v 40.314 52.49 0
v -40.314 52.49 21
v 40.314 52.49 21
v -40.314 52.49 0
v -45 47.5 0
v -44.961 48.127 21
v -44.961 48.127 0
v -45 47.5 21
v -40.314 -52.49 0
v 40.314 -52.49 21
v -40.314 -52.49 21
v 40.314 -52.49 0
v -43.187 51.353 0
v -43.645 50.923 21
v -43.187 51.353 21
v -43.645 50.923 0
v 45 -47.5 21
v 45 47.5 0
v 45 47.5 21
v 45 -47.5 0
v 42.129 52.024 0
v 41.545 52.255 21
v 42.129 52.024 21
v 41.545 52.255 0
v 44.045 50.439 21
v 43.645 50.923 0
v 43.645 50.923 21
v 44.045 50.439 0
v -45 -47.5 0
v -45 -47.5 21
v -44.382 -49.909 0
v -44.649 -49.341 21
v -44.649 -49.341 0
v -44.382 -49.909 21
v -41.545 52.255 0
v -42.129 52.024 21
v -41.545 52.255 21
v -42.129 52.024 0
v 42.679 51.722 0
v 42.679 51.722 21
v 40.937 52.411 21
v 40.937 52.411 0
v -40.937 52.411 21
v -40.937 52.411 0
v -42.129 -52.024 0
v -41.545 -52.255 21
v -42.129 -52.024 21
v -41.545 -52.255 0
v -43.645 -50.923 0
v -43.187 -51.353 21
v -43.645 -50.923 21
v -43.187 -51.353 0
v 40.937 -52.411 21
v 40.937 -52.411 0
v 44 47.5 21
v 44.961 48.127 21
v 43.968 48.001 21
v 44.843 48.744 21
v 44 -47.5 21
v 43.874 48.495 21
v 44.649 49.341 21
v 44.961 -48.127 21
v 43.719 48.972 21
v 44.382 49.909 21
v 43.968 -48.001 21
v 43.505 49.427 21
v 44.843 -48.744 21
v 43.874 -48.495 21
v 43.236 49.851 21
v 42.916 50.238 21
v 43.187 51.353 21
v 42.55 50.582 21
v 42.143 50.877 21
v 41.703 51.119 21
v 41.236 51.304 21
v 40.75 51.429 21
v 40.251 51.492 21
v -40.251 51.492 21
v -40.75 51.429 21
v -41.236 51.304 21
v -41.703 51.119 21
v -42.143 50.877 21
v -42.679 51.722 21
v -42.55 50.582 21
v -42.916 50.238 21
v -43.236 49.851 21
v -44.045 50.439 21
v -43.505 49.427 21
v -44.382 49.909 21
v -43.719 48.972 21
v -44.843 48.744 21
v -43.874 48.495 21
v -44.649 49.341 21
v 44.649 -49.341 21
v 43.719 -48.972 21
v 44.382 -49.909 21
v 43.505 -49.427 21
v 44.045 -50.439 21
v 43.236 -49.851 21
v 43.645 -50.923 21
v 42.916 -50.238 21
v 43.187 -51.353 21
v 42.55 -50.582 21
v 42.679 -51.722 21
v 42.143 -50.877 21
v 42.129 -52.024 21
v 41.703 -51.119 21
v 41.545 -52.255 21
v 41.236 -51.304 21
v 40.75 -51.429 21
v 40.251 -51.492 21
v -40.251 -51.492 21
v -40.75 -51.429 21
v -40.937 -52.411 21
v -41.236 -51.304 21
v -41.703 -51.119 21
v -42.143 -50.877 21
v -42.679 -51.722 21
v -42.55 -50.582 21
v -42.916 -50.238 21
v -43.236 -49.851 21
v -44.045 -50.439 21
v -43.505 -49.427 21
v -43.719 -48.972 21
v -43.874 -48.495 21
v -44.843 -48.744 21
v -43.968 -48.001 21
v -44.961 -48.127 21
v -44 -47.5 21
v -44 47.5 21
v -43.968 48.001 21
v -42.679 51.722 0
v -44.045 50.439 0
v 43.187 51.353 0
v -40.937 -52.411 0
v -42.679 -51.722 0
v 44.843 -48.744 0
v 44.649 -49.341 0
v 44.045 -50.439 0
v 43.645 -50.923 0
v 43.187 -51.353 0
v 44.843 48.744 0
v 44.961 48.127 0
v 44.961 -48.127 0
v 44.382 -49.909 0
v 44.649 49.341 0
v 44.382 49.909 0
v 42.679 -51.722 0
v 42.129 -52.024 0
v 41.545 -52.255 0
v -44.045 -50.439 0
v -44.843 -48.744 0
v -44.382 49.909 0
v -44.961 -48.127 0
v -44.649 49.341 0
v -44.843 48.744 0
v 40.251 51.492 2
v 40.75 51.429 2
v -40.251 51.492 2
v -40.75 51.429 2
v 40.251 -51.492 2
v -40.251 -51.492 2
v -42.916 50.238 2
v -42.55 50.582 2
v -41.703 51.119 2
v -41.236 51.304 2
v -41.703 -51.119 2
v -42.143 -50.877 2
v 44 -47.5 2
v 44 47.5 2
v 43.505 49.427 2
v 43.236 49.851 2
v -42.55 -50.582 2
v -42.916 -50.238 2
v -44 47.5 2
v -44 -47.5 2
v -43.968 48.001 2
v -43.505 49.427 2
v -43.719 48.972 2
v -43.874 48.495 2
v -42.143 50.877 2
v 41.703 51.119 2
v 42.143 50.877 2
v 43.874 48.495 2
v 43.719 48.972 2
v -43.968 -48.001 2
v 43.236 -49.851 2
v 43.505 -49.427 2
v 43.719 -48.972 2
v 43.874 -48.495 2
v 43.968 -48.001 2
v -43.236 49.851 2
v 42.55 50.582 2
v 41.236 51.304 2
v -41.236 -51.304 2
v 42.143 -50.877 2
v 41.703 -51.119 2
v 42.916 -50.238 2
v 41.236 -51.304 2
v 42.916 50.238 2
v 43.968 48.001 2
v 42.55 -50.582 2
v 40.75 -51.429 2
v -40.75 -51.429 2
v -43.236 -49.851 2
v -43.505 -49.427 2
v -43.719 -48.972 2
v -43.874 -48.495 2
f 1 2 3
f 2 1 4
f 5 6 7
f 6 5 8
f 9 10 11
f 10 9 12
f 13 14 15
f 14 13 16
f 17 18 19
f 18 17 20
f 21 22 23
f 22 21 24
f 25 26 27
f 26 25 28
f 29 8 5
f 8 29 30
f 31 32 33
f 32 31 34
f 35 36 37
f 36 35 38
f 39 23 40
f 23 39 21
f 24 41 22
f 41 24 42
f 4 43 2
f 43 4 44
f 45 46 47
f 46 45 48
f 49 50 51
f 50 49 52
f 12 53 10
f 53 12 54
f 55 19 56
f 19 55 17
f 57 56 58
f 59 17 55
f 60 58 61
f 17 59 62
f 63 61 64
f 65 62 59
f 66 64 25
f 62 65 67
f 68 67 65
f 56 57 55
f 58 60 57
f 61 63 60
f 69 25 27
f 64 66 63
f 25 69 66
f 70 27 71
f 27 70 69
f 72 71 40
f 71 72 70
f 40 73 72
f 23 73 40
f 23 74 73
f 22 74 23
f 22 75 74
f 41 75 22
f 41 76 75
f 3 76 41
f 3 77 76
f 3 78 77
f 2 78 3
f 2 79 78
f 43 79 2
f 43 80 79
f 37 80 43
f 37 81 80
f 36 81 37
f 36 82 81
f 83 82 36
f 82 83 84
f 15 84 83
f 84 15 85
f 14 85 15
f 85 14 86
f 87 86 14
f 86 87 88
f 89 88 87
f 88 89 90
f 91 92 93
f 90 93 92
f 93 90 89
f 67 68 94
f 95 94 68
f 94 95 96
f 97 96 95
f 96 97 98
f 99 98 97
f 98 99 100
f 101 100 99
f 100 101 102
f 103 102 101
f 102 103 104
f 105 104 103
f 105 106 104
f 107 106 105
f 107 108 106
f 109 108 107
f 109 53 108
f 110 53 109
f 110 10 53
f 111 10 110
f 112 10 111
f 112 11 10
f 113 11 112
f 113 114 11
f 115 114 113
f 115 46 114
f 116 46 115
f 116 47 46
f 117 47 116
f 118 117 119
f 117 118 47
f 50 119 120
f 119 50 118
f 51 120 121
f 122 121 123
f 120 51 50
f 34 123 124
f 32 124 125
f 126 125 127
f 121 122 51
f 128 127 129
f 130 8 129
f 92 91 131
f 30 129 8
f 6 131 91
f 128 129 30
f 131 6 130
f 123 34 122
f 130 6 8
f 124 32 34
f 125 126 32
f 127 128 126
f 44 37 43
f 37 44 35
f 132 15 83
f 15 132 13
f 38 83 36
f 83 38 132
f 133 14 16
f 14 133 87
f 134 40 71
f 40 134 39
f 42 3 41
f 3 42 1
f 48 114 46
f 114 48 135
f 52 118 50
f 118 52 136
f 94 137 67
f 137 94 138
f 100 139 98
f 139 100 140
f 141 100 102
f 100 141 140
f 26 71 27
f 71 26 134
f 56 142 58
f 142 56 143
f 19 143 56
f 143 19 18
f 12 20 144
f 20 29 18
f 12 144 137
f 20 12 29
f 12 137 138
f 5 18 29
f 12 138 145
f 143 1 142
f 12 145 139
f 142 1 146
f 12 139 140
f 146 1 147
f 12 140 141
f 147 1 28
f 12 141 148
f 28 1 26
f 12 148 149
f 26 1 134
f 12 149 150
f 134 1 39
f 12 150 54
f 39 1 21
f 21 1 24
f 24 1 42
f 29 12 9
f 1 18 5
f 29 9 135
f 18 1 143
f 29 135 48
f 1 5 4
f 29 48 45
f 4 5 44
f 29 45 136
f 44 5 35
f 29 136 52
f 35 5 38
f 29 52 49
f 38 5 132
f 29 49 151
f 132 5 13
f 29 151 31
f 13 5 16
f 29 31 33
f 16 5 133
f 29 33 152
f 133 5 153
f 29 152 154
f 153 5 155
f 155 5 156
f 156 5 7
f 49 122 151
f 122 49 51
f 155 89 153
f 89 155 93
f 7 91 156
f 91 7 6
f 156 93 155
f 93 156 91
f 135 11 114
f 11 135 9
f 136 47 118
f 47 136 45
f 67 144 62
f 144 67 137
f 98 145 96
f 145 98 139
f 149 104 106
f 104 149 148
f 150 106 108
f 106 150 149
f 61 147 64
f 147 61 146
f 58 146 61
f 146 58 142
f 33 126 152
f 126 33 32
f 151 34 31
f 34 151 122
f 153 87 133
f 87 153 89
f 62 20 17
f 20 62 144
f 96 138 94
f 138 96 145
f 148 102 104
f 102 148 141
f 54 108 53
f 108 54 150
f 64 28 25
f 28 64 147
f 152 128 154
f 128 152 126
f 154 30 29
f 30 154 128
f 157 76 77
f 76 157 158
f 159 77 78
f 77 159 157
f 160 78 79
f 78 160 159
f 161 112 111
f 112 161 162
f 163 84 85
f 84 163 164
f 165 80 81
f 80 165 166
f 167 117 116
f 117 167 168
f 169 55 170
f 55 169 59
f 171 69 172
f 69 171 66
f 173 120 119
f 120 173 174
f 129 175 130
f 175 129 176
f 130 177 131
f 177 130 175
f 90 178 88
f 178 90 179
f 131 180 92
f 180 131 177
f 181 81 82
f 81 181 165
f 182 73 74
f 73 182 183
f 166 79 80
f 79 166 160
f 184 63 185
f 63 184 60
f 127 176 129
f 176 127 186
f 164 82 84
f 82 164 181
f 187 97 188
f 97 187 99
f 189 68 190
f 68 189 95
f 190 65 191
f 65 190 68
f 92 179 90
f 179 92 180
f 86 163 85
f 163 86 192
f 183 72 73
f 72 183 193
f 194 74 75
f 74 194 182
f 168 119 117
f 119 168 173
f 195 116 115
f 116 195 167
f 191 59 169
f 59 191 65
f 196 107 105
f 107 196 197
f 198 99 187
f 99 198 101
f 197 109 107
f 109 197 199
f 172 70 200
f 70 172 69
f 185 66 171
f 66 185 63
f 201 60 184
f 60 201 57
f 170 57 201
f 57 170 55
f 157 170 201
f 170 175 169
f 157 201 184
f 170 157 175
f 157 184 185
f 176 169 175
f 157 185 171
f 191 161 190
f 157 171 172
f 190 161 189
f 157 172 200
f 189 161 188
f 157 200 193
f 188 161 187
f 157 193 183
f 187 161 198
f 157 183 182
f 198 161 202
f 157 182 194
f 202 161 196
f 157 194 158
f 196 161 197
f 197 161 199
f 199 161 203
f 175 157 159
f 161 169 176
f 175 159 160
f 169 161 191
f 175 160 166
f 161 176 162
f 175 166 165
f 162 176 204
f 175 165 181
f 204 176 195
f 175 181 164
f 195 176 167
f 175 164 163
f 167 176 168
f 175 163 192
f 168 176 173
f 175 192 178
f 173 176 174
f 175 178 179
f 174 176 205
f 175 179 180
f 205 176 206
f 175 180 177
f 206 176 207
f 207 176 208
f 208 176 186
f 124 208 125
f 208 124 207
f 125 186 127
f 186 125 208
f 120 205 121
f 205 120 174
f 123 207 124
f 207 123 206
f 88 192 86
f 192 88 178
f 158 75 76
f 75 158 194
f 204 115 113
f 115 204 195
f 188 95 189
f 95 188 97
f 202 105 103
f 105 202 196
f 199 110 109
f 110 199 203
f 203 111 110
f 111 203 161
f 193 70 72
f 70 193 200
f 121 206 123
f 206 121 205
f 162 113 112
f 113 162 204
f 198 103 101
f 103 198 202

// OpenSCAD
$fn = 50;


difference() {
	union() {
		hull() {
			translate(v = [-40.0000000000, 47.5000000000, 0]) {
				cylinder(h = 21, r = 5);
			}
			translate(v = [40.0000000000, 47.5000000000, 0]) {
				cylinder(h = 21, r = 5);
			}
			translate(v = [-40.0000000000, -47.5000000000, 0]) {
				cylinder(h = 21, r = 5);
			}
			translate(v = [40.0000000000, -47.5000000000, 0]) {
				cylinder(h = 21, r = 5);
			}
		}
	}
	union() {
		translate(v = [0, 0, 2]) {
			hull() {
				translate(v = [-40.0000000000, 47.5000000000, 0]) {
					cylinder(h = 19, r = 4);
				}
				translate(v = [40.0000000000, 47.5000000000, 0]) {
					cylinder(h = 19, r = 4);
				}
				translate(v = [-40.0000000000, -47.5000000000, 0]) {
					cylinder(h = 19, r = 4);
				}
				translate(v = [40.0000000000, -47.5000000000, 0]) {
					cylinder(h = 19, r = 4);
				}
			}
		}
	}
}
